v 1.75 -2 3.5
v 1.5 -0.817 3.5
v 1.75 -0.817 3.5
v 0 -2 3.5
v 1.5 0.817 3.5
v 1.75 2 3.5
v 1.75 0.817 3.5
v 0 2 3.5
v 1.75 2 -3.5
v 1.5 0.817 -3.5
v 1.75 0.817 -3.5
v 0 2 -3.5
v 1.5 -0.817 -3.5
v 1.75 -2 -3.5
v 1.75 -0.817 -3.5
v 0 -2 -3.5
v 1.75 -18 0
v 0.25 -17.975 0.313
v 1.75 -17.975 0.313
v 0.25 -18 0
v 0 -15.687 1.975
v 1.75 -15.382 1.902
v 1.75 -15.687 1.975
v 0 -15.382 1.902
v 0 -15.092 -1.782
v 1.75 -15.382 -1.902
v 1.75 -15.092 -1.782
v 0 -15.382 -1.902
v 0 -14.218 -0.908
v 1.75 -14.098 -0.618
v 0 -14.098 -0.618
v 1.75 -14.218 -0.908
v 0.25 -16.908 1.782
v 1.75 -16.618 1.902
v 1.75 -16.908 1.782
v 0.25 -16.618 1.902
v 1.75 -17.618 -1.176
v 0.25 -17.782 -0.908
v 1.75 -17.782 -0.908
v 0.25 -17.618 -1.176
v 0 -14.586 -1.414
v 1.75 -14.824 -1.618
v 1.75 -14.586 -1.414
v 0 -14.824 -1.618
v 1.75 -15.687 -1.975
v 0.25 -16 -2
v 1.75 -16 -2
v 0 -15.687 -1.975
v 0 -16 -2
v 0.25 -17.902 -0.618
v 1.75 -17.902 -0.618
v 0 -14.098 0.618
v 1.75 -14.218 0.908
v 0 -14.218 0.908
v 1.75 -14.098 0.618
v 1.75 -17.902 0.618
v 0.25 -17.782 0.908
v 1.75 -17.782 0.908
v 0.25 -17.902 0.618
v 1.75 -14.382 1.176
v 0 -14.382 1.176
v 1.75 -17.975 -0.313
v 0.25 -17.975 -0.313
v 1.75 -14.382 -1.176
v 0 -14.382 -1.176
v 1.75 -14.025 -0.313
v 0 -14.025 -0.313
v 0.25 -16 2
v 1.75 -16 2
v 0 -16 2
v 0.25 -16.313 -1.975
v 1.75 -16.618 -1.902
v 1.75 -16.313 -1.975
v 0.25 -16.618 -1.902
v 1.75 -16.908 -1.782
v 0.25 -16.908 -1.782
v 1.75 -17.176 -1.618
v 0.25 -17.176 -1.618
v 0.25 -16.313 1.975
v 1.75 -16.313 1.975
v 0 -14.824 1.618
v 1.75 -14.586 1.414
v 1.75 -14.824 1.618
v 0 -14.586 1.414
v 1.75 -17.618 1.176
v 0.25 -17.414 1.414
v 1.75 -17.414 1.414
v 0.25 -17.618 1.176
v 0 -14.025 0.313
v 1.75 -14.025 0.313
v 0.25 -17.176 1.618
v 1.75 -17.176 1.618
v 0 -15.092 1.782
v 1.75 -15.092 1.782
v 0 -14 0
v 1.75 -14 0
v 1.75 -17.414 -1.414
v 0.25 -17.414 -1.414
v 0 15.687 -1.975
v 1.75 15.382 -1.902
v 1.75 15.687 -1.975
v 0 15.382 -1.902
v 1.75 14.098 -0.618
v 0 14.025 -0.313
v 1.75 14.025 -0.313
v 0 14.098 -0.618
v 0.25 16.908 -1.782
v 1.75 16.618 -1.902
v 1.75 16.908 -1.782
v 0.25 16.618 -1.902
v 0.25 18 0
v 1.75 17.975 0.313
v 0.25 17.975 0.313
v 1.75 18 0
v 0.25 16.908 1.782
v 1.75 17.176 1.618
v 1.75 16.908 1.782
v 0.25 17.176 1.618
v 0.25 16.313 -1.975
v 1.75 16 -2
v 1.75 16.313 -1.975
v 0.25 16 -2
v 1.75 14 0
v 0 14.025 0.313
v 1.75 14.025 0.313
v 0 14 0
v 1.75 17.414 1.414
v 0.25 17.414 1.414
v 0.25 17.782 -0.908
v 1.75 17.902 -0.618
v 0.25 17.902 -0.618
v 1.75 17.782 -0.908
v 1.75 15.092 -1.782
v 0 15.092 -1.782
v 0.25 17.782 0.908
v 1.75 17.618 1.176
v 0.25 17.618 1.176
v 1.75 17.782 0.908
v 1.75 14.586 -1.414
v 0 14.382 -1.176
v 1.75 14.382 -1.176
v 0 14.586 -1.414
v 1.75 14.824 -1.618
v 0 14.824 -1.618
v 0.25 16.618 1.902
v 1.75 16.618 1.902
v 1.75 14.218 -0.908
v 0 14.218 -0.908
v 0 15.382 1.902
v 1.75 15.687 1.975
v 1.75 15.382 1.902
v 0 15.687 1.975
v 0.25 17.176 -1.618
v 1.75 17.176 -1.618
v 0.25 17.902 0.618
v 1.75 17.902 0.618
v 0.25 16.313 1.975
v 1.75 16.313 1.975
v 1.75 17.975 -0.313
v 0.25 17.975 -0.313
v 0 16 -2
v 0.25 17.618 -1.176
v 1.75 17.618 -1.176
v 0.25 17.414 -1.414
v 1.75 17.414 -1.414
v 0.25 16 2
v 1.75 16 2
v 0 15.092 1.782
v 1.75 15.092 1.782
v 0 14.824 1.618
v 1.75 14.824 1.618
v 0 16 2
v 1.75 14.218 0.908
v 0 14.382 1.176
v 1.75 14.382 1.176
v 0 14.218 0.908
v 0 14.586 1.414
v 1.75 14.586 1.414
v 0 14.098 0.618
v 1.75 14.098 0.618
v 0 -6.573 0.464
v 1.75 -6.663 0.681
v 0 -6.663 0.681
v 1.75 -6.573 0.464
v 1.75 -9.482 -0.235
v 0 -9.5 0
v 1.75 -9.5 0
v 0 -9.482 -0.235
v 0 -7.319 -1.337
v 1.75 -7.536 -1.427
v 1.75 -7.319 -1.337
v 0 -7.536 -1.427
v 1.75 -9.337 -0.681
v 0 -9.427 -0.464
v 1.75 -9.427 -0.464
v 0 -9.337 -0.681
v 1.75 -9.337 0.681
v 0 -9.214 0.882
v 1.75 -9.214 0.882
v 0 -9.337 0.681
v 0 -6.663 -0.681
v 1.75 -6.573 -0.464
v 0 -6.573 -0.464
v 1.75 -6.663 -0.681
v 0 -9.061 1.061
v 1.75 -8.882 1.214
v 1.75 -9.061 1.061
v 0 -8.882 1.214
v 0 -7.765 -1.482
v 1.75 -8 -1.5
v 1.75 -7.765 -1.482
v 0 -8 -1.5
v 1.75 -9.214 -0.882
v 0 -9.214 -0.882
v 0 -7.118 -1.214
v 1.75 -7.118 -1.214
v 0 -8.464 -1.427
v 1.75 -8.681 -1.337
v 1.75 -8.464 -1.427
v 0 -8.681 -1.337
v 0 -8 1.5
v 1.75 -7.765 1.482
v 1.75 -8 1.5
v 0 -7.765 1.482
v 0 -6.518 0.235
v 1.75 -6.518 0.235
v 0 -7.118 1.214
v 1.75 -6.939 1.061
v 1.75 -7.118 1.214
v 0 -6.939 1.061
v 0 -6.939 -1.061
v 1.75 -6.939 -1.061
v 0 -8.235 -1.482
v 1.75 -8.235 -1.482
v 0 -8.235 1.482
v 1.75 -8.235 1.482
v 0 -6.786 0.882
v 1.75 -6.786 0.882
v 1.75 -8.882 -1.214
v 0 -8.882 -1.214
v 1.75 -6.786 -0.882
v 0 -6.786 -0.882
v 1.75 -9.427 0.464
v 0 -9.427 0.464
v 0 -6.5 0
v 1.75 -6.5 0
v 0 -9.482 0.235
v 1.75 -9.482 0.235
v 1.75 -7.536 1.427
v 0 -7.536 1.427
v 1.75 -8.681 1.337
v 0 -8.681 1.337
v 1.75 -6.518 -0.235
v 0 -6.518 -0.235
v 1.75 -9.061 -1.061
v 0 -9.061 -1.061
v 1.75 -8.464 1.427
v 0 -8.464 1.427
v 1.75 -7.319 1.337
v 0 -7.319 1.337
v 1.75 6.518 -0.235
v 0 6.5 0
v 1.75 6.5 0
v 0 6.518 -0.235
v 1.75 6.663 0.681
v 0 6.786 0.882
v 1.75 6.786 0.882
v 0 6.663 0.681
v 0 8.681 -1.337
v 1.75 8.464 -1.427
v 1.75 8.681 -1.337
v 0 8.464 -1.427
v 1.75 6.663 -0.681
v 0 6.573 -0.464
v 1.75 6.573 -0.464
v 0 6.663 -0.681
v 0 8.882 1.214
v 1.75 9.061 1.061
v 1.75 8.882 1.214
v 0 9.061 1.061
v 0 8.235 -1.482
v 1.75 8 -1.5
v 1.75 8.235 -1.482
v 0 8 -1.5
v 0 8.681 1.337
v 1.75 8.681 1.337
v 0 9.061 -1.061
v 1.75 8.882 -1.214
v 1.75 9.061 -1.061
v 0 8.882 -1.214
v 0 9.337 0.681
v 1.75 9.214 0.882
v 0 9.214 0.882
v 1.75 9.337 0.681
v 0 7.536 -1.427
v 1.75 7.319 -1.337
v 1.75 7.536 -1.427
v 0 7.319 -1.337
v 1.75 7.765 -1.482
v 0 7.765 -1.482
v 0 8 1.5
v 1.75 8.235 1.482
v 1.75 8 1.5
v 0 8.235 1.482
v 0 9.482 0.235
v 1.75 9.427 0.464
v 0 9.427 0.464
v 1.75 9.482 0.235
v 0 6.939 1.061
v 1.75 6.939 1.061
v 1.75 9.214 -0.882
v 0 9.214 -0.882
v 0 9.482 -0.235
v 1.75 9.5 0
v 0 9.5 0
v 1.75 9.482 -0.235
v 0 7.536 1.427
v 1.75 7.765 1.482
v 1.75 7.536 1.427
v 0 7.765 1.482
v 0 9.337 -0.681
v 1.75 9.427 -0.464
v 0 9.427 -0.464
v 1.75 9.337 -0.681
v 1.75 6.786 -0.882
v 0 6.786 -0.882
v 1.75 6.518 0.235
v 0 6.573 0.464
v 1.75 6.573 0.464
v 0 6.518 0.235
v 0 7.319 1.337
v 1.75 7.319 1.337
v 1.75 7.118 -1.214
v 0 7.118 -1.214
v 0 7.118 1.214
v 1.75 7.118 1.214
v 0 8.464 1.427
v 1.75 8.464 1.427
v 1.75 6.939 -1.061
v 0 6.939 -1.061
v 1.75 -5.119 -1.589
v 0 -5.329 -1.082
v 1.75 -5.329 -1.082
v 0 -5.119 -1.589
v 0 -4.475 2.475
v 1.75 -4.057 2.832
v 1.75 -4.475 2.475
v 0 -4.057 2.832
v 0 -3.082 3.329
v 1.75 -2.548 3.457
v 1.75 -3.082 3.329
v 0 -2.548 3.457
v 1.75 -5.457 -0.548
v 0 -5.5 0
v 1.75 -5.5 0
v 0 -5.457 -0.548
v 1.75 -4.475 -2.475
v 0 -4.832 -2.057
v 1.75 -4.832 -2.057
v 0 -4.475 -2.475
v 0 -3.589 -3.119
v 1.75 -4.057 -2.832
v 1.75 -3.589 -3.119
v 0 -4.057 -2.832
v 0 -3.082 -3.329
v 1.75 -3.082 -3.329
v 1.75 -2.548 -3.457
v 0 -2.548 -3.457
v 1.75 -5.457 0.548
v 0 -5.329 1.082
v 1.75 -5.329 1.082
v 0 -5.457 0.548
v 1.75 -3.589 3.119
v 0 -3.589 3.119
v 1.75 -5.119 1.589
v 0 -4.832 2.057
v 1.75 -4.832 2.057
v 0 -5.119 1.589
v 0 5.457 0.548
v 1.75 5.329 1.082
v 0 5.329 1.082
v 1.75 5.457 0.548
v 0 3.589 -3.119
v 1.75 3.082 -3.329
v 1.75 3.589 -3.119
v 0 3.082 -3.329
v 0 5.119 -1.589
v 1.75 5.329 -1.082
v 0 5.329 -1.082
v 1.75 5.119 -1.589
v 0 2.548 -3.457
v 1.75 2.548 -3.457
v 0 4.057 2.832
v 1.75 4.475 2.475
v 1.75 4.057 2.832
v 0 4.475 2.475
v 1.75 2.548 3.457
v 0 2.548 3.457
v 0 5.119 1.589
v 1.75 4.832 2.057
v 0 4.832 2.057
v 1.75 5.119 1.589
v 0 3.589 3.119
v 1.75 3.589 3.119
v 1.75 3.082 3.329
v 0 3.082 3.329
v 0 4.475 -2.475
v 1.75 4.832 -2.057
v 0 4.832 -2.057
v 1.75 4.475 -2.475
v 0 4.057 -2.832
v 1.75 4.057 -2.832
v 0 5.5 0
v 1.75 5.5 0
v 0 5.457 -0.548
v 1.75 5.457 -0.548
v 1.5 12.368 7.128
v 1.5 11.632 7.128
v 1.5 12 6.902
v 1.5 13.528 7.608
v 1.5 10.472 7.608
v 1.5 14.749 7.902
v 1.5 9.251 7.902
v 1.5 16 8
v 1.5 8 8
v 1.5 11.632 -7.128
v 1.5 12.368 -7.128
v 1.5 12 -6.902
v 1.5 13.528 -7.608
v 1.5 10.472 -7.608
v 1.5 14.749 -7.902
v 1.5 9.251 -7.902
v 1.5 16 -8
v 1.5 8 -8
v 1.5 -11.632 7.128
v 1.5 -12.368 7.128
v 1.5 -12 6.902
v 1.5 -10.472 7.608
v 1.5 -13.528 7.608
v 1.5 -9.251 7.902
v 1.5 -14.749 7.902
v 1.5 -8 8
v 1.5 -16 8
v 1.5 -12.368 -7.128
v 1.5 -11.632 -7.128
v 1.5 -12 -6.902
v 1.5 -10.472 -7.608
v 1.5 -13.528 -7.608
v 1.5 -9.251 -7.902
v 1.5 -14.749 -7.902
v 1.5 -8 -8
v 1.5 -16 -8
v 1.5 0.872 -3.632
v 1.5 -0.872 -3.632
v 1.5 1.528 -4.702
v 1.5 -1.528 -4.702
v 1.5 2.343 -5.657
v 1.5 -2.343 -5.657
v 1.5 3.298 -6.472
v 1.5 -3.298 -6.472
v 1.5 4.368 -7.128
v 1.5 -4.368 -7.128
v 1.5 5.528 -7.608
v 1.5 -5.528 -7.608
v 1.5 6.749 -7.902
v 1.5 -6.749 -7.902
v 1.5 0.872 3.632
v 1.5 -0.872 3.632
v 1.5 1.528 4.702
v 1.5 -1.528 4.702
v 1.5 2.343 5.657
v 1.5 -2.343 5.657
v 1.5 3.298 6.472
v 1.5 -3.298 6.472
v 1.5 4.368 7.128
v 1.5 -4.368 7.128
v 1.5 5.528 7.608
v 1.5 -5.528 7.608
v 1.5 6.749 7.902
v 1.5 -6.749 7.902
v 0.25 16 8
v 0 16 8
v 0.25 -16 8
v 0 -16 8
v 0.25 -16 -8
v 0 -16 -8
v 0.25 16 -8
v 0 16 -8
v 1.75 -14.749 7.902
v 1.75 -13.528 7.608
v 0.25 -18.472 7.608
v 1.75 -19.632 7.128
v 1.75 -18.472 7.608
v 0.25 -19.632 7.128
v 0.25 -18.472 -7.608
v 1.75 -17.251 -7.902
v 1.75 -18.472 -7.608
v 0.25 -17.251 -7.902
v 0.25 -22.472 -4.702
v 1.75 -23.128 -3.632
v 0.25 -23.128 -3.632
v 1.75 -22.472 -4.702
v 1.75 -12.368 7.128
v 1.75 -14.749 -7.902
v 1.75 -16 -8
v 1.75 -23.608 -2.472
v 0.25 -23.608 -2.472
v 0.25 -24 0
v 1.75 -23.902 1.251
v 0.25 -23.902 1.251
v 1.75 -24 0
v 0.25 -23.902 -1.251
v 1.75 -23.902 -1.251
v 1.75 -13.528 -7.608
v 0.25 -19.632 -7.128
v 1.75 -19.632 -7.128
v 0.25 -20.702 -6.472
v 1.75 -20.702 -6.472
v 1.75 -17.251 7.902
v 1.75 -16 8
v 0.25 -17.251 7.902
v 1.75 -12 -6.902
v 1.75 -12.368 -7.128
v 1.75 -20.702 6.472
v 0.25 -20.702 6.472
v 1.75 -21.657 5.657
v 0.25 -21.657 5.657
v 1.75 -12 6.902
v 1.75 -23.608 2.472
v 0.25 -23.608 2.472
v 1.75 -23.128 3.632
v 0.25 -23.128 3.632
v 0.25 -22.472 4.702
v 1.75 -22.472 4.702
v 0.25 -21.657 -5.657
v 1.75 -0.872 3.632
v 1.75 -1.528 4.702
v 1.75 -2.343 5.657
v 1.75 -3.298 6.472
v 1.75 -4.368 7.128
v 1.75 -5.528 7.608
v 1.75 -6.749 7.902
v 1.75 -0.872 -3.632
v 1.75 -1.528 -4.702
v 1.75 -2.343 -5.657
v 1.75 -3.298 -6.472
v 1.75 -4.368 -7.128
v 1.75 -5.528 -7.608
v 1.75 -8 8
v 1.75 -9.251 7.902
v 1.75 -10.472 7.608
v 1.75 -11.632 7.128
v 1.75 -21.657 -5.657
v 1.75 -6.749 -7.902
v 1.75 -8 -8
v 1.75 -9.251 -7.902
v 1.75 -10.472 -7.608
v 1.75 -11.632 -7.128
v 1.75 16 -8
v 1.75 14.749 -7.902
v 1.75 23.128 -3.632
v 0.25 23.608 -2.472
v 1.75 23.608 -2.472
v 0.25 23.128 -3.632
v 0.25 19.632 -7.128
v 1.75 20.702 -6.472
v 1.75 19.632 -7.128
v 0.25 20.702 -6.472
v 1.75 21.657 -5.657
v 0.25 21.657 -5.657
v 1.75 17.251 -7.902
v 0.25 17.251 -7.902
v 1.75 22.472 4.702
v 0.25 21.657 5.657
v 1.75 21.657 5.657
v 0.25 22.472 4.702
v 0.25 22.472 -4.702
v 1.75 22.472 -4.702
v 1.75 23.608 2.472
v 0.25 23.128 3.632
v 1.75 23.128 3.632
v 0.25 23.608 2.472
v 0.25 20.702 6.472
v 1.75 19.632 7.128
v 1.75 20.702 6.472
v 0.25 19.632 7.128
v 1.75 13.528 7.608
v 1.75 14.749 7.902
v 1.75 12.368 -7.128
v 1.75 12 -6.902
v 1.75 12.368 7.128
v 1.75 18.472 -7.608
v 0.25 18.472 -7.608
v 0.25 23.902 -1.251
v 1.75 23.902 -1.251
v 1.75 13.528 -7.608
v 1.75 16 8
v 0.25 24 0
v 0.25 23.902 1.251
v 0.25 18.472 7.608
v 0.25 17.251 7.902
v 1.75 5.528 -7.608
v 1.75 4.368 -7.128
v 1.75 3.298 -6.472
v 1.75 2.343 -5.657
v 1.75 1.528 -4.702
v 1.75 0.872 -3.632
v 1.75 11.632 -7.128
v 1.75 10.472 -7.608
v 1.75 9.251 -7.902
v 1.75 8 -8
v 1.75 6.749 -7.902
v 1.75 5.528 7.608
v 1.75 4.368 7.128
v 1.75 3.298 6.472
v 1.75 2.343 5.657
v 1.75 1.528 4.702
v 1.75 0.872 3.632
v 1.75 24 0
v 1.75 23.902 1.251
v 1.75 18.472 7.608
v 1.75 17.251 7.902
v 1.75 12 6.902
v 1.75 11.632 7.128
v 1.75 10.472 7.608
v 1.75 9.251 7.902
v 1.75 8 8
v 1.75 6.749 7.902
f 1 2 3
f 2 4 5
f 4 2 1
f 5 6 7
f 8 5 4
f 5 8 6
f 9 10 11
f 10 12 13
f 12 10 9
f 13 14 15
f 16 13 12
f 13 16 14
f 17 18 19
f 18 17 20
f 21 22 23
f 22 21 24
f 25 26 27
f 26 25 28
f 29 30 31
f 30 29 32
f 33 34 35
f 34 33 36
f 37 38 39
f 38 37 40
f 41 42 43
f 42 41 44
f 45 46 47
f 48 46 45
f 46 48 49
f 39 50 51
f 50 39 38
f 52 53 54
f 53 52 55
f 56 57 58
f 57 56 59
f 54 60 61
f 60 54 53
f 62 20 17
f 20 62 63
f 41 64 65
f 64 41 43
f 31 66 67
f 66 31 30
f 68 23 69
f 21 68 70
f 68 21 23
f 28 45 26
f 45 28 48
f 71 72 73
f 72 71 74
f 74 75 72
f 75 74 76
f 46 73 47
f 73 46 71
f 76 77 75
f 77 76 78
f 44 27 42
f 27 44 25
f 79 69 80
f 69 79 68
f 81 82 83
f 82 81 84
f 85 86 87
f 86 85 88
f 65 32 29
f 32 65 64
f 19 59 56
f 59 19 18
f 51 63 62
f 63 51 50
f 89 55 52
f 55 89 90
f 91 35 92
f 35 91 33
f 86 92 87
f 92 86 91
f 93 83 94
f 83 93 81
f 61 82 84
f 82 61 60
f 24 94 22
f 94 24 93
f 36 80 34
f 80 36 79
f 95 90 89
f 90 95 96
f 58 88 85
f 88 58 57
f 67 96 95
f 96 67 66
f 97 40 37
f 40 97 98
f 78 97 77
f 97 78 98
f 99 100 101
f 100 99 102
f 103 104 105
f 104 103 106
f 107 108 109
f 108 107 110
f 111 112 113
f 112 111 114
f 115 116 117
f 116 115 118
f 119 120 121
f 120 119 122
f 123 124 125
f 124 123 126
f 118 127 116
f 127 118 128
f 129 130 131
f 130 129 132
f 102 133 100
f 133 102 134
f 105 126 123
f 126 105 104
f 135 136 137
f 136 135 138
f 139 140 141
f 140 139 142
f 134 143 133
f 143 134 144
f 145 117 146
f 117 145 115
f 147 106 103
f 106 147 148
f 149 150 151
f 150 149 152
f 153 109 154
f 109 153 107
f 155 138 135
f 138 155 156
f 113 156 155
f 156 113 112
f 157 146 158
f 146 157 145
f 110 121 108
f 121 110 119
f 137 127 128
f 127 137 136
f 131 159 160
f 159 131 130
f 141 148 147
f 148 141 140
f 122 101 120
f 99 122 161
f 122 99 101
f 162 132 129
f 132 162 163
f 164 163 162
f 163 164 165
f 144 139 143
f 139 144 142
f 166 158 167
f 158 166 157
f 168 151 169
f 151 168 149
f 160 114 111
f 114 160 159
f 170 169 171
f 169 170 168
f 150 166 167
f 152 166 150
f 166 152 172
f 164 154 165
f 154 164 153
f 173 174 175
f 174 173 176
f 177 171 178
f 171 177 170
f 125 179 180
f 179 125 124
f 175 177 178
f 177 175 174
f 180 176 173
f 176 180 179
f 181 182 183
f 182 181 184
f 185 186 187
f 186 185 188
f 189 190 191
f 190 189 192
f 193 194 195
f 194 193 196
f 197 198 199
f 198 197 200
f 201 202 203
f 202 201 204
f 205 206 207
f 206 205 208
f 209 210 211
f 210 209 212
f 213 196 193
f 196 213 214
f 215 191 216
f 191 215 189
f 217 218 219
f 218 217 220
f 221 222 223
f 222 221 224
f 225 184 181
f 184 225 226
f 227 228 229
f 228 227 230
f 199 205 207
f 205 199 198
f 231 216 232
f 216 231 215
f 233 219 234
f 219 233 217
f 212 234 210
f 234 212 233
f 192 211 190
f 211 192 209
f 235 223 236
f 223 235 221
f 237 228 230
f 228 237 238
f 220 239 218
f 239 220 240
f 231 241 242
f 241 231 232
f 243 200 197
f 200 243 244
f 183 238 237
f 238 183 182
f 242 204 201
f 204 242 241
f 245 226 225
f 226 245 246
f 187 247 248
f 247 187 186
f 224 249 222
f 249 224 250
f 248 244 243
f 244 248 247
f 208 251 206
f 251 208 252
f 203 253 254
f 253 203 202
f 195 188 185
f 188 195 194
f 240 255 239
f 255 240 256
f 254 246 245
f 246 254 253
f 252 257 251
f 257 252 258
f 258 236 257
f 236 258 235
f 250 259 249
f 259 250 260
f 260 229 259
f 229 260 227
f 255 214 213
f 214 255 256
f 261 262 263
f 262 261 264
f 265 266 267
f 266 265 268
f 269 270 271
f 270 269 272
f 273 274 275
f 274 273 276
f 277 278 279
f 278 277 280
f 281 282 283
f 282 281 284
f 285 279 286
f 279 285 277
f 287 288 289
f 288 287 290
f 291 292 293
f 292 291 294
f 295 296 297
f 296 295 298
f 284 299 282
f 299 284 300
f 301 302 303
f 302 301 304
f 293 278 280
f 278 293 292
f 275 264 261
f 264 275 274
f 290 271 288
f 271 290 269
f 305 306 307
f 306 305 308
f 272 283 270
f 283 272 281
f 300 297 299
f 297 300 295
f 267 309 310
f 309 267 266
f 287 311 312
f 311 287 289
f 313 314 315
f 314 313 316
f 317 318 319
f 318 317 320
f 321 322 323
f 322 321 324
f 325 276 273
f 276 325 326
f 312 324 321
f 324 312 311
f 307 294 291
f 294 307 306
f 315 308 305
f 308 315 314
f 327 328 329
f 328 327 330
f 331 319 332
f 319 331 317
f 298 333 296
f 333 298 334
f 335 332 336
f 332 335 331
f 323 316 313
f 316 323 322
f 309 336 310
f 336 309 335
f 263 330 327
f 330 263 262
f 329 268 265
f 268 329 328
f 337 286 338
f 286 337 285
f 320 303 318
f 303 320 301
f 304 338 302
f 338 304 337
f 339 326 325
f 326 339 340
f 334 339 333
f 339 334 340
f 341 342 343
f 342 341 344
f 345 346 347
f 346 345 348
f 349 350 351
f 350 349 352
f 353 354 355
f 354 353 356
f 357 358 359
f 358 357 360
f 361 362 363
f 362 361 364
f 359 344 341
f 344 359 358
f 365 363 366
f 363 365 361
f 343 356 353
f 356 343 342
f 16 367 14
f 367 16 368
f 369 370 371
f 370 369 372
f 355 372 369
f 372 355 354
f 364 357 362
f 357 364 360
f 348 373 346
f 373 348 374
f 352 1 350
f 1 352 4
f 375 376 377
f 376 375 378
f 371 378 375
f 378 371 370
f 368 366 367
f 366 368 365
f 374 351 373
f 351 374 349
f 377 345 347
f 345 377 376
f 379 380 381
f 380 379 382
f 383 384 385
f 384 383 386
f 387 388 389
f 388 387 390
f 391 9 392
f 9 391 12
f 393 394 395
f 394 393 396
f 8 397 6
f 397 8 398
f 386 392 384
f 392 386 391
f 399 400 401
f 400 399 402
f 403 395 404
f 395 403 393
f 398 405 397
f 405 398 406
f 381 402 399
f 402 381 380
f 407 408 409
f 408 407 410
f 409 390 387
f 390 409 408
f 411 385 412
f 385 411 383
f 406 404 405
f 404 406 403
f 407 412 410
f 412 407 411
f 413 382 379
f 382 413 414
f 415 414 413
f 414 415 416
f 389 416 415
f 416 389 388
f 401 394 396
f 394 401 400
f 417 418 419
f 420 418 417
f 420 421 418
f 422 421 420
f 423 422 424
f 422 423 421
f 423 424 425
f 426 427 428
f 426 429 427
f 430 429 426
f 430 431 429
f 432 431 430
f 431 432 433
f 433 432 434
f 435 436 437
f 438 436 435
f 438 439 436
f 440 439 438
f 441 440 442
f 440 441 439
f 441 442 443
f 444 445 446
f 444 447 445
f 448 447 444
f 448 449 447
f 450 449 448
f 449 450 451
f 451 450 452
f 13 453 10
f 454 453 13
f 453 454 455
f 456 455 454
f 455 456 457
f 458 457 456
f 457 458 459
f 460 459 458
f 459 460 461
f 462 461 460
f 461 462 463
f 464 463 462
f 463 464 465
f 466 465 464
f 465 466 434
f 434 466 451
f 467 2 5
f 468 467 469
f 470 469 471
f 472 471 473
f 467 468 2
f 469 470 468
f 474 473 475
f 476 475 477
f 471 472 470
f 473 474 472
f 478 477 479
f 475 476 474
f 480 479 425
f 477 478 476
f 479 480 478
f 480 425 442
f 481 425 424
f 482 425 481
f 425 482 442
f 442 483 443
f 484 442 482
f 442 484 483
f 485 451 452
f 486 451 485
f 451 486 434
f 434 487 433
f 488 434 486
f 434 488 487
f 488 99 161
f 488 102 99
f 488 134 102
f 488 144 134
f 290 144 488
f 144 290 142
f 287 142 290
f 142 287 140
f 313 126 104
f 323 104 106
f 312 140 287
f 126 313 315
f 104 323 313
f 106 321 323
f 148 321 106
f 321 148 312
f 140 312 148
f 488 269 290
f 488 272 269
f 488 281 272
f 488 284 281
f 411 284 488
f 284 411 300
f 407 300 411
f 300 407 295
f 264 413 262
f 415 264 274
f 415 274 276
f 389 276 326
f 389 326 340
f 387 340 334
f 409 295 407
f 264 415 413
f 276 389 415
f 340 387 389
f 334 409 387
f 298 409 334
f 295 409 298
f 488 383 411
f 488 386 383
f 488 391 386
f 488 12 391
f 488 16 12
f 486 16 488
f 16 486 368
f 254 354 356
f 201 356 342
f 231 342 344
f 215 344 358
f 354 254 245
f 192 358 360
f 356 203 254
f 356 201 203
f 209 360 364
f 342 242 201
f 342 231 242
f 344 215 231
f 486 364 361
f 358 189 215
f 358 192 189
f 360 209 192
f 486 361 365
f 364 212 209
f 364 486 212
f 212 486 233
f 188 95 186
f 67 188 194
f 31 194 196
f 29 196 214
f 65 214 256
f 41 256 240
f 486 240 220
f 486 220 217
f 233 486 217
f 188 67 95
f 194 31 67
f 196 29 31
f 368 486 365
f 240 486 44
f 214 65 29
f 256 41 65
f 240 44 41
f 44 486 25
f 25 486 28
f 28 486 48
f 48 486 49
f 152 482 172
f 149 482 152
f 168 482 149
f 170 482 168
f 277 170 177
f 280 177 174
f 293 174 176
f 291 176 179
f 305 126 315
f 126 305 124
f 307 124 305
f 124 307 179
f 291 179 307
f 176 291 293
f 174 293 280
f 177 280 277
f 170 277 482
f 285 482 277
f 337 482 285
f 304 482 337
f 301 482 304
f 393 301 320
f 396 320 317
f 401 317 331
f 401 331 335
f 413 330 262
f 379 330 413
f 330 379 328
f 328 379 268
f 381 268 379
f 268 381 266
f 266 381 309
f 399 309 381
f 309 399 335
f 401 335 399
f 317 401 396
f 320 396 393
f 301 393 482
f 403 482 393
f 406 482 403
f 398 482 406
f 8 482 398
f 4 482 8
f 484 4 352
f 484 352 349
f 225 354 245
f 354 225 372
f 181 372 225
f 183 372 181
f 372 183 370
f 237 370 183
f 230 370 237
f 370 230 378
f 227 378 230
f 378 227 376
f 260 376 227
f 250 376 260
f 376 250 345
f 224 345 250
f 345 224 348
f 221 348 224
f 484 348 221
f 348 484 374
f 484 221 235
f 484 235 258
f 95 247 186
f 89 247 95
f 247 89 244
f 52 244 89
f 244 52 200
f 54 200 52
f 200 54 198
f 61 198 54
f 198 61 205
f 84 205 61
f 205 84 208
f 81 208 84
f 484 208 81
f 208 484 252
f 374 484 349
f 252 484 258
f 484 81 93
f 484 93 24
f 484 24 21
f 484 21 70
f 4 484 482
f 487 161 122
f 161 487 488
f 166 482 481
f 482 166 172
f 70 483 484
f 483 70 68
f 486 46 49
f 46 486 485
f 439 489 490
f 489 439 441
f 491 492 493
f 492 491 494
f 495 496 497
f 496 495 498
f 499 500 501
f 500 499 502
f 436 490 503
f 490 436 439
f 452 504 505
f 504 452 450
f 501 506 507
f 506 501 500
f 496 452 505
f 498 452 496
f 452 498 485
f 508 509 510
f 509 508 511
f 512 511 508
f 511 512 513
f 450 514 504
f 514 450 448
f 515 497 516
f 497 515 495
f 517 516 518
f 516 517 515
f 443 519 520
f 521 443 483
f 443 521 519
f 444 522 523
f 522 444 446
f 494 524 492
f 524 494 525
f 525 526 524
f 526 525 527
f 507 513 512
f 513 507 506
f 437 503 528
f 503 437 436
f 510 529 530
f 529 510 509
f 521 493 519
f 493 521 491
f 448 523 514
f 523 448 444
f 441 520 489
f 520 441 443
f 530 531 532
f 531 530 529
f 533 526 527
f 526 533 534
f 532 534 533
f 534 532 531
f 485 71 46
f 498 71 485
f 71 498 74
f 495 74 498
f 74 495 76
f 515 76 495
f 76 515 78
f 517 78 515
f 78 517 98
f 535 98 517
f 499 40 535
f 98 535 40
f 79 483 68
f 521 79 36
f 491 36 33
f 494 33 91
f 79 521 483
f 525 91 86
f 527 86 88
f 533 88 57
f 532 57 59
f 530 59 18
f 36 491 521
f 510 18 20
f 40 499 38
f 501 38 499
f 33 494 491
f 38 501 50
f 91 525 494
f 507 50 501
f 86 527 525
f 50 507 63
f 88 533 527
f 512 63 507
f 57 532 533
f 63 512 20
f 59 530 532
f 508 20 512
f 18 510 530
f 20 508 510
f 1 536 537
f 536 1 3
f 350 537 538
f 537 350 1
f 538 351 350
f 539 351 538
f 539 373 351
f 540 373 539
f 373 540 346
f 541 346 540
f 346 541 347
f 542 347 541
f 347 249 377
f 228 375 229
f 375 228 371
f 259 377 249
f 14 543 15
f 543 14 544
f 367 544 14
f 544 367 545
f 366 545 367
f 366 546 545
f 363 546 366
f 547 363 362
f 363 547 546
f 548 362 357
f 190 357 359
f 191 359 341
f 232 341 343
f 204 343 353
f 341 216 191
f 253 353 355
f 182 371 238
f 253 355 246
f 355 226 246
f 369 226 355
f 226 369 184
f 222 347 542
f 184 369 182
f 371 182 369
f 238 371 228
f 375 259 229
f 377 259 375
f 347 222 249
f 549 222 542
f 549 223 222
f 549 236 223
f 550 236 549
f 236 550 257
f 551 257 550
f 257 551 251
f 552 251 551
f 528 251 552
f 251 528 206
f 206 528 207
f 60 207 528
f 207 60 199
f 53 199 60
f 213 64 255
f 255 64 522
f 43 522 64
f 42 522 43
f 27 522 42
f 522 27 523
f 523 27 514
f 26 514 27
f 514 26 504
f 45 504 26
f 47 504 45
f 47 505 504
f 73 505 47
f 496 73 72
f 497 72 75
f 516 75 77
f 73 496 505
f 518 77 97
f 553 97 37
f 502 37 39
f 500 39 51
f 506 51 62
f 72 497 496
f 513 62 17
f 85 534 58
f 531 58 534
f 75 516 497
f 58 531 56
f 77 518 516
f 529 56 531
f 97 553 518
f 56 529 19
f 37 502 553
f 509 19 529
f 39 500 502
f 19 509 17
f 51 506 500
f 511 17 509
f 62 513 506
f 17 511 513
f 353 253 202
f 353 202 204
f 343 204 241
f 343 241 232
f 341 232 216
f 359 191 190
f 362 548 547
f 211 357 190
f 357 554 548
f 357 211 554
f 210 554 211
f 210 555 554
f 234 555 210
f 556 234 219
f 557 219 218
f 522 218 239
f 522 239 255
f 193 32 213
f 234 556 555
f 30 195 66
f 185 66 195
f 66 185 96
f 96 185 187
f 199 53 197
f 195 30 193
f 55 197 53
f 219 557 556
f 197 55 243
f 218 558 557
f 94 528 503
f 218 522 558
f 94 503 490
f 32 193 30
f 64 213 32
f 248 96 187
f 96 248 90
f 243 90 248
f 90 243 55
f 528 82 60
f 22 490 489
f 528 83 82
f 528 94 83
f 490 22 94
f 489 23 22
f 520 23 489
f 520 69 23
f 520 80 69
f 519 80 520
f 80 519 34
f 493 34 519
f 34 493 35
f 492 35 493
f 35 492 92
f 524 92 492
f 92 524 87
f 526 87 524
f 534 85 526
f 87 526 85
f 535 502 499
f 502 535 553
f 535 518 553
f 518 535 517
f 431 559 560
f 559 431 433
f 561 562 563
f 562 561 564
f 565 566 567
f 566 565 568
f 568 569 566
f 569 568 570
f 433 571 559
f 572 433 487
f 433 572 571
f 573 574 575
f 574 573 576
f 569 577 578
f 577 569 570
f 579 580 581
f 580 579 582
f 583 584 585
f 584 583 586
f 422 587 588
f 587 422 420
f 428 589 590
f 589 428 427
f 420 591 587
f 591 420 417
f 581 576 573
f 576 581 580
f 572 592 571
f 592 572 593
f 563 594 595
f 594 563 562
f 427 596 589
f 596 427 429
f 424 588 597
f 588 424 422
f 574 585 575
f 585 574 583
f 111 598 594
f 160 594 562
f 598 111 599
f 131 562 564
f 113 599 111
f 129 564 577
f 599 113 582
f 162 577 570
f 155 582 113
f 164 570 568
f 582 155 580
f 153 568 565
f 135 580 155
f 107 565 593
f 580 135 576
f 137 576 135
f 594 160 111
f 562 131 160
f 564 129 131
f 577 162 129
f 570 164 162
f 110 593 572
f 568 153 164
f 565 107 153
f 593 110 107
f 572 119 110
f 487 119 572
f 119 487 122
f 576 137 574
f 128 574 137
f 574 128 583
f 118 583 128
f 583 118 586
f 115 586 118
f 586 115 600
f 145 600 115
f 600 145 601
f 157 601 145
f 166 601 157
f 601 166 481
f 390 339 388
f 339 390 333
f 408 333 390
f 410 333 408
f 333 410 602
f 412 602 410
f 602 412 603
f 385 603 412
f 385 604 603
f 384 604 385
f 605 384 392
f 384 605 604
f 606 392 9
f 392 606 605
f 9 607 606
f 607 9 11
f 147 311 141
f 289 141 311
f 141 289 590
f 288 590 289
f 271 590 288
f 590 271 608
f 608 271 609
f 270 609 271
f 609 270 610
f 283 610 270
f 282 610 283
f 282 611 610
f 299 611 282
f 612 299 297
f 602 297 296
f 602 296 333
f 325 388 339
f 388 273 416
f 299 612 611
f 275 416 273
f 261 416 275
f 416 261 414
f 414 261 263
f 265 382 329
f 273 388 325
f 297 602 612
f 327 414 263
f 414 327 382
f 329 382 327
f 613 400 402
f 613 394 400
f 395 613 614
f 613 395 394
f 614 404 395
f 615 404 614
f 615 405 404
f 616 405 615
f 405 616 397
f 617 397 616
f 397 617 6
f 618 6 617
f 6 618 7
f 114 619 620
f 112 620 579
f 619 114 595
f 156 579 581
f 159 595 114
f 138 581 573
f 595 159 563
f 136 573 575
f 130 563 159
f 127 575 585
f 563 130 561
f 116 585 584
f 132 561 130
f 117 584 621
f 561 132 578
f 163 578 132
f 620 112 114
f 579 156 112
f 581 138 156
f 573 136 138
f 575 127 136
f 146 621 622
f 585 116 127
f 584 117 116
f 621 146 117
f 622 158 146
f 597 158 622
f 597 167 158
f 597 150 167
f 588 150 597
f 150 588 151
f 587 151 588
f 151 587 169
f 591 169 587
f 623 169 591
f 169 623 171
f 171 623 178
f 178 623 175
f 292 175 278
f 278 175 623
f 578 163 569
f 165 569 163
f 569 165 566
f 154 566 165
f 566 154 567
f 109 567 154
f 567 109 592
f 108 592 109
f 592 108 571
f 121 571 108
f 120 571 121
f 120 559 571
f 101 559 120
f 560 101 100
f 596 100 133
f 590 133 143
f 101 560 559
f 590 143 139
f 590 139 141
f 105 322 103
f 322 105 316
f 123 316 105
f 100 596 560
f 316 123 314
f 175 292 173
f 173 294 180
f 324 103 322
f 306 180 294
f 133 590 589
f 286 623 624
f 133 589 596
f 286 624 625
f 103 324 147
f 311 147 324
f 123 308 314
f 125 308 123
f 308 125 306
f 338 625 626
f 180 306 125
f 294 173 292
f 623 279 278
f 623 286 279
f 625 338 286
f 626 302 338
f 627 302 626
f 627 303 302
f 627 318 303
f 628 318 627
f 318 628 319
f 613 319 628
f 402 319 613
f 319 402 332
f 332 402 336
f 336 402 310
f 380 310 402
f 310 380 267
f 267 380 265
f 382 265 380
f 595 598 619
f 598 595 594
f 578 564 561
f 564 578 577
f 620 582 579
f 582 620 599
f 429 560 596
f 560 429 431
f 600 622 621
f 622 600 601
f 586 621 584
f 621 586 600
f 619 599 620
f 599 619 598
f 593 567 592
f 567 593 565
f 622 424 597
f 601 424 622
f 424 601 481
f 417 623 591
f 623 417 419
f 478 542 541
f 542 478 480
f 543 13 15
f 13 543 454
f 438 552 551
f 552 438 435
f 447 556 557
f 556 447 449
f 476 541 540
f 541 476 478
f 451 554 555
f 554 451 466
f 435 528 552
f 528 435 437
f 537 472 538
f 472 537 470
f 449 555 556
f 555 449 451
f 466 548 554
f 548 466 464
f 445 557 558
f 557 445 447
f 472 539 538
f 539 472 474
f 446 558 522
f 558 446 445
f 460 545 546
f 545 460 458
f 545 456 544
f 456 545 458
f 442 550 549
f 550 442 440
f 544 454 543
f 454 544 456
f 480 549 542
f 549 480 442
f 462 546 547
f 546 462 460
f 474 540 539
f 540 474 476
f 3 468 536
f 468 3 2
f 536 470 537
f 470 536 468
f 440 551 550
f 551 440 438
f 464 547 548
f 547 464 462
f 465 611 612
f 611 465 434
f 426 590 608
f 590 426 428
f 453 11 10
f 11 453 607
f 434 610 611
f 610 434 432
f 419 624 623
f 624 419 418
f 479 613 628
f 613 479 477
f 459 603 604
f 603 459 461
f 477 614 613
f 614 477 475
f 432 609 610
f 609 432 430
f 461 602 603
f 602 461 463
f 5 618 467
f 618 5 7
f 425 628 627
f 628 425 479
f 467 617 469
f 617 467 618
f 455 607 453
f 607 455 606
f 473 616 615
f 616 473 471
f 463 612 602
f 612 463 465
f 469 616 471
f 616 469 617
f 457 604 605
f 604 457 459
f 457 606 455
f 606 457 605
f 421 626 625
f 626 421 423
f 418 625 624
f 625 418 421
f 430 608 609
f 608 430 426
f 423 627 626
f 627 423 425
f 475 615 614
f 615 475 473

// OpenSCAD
plaat_breedte = 136;
plaat_hoogte = 146;
hoekradius = 10;
plaat_dikte = 3; 
totale_hoogte = 50;
$fn = 96;
module buitenvorm_2d() {
    translate([hoekradius, hoekradius])
        offset(r = hoekradius)
            square([plaat_breedte - 2*hoekradius,
                    plaat_hoogte - 2*hoekradius]);
}
module binnenvorm_2d() {
    translate([hoekradius, hoekradius])
        offset(r = hoekradius)
            square([plaat_breedte - 2*plaat_dikte - 2*hoekradius,
                    plaat_hoogte - 2*plaat_dikte - 2*hoekradius]);
}

module kast() {
    difference() {
        linear_extrude(height = totale_hoogte) buitenvorm_2d();
        translate([plaat_dikte, plaat_dikte, plaat_dikte])linear_extrude(height = 99) binnenvorm_2d();
    }
}

module uitsparing_power(){
//     translate([0, -11, -4]) cube([80, 22, 8]);
     translate([-2,-2,-3.5]) cube([10, 4, 7]);
 
     translate([40, -16, 0]) rotate([0, 90, 0]) cylinder(h=80, d=4, center=true, $fn=40);
     translate([40, 16, 0])  rotate([0, 90, 0]) cylinder(h=80, d=4, center=true, $fn=40);
     translate([40, -8, 0]) rotate([0, 90, 0]) cylinder(h=80, d=3, center=true, $fn=40);
     translate([40, 8, 0])  rotate([0, 90, 0]) cylinder(h=80, d=3, center=true, $fn=40);
     translate([40, -2, 0]) rotate([0, 90, 0]) cylinder(h=80, d=7, center=true, $fn=40);
     translate([40, 2, 0])  rotate([0, 90, 0]) cylinder(h=80, d=7, center=true, $fn=40);

    
 }

// Voor een vlakke DXF/SVG-export: vervang onderstaande regel door paneel_2d();
    difference() {
        union() {
            translate([0,-16,-8]) cube([1.5, 32, 16]);
            translate([1, -16, 0]) rotate([0, 90, 0]) cylinder(h=1.5, d=16, center=true, $fn=40);
            translate([1, 16, 0])  rotate([0, 90, 0]) cylinder(h=1.5, d=16, center=true, $fn=40);
            translate([1, -8, 0]) rotate([0, 90, 0]) cylinder(h=1.5, d=16, center=true, $fn=40);
            translate([1, 8, 0])  rotate([0, 90, 0]) cylinder(h=1.5, d=16, center=true, $fn=40);
        }
        union() {
  
            translate([-2,0,0]) uitsparing_power();
            
        }
    }
